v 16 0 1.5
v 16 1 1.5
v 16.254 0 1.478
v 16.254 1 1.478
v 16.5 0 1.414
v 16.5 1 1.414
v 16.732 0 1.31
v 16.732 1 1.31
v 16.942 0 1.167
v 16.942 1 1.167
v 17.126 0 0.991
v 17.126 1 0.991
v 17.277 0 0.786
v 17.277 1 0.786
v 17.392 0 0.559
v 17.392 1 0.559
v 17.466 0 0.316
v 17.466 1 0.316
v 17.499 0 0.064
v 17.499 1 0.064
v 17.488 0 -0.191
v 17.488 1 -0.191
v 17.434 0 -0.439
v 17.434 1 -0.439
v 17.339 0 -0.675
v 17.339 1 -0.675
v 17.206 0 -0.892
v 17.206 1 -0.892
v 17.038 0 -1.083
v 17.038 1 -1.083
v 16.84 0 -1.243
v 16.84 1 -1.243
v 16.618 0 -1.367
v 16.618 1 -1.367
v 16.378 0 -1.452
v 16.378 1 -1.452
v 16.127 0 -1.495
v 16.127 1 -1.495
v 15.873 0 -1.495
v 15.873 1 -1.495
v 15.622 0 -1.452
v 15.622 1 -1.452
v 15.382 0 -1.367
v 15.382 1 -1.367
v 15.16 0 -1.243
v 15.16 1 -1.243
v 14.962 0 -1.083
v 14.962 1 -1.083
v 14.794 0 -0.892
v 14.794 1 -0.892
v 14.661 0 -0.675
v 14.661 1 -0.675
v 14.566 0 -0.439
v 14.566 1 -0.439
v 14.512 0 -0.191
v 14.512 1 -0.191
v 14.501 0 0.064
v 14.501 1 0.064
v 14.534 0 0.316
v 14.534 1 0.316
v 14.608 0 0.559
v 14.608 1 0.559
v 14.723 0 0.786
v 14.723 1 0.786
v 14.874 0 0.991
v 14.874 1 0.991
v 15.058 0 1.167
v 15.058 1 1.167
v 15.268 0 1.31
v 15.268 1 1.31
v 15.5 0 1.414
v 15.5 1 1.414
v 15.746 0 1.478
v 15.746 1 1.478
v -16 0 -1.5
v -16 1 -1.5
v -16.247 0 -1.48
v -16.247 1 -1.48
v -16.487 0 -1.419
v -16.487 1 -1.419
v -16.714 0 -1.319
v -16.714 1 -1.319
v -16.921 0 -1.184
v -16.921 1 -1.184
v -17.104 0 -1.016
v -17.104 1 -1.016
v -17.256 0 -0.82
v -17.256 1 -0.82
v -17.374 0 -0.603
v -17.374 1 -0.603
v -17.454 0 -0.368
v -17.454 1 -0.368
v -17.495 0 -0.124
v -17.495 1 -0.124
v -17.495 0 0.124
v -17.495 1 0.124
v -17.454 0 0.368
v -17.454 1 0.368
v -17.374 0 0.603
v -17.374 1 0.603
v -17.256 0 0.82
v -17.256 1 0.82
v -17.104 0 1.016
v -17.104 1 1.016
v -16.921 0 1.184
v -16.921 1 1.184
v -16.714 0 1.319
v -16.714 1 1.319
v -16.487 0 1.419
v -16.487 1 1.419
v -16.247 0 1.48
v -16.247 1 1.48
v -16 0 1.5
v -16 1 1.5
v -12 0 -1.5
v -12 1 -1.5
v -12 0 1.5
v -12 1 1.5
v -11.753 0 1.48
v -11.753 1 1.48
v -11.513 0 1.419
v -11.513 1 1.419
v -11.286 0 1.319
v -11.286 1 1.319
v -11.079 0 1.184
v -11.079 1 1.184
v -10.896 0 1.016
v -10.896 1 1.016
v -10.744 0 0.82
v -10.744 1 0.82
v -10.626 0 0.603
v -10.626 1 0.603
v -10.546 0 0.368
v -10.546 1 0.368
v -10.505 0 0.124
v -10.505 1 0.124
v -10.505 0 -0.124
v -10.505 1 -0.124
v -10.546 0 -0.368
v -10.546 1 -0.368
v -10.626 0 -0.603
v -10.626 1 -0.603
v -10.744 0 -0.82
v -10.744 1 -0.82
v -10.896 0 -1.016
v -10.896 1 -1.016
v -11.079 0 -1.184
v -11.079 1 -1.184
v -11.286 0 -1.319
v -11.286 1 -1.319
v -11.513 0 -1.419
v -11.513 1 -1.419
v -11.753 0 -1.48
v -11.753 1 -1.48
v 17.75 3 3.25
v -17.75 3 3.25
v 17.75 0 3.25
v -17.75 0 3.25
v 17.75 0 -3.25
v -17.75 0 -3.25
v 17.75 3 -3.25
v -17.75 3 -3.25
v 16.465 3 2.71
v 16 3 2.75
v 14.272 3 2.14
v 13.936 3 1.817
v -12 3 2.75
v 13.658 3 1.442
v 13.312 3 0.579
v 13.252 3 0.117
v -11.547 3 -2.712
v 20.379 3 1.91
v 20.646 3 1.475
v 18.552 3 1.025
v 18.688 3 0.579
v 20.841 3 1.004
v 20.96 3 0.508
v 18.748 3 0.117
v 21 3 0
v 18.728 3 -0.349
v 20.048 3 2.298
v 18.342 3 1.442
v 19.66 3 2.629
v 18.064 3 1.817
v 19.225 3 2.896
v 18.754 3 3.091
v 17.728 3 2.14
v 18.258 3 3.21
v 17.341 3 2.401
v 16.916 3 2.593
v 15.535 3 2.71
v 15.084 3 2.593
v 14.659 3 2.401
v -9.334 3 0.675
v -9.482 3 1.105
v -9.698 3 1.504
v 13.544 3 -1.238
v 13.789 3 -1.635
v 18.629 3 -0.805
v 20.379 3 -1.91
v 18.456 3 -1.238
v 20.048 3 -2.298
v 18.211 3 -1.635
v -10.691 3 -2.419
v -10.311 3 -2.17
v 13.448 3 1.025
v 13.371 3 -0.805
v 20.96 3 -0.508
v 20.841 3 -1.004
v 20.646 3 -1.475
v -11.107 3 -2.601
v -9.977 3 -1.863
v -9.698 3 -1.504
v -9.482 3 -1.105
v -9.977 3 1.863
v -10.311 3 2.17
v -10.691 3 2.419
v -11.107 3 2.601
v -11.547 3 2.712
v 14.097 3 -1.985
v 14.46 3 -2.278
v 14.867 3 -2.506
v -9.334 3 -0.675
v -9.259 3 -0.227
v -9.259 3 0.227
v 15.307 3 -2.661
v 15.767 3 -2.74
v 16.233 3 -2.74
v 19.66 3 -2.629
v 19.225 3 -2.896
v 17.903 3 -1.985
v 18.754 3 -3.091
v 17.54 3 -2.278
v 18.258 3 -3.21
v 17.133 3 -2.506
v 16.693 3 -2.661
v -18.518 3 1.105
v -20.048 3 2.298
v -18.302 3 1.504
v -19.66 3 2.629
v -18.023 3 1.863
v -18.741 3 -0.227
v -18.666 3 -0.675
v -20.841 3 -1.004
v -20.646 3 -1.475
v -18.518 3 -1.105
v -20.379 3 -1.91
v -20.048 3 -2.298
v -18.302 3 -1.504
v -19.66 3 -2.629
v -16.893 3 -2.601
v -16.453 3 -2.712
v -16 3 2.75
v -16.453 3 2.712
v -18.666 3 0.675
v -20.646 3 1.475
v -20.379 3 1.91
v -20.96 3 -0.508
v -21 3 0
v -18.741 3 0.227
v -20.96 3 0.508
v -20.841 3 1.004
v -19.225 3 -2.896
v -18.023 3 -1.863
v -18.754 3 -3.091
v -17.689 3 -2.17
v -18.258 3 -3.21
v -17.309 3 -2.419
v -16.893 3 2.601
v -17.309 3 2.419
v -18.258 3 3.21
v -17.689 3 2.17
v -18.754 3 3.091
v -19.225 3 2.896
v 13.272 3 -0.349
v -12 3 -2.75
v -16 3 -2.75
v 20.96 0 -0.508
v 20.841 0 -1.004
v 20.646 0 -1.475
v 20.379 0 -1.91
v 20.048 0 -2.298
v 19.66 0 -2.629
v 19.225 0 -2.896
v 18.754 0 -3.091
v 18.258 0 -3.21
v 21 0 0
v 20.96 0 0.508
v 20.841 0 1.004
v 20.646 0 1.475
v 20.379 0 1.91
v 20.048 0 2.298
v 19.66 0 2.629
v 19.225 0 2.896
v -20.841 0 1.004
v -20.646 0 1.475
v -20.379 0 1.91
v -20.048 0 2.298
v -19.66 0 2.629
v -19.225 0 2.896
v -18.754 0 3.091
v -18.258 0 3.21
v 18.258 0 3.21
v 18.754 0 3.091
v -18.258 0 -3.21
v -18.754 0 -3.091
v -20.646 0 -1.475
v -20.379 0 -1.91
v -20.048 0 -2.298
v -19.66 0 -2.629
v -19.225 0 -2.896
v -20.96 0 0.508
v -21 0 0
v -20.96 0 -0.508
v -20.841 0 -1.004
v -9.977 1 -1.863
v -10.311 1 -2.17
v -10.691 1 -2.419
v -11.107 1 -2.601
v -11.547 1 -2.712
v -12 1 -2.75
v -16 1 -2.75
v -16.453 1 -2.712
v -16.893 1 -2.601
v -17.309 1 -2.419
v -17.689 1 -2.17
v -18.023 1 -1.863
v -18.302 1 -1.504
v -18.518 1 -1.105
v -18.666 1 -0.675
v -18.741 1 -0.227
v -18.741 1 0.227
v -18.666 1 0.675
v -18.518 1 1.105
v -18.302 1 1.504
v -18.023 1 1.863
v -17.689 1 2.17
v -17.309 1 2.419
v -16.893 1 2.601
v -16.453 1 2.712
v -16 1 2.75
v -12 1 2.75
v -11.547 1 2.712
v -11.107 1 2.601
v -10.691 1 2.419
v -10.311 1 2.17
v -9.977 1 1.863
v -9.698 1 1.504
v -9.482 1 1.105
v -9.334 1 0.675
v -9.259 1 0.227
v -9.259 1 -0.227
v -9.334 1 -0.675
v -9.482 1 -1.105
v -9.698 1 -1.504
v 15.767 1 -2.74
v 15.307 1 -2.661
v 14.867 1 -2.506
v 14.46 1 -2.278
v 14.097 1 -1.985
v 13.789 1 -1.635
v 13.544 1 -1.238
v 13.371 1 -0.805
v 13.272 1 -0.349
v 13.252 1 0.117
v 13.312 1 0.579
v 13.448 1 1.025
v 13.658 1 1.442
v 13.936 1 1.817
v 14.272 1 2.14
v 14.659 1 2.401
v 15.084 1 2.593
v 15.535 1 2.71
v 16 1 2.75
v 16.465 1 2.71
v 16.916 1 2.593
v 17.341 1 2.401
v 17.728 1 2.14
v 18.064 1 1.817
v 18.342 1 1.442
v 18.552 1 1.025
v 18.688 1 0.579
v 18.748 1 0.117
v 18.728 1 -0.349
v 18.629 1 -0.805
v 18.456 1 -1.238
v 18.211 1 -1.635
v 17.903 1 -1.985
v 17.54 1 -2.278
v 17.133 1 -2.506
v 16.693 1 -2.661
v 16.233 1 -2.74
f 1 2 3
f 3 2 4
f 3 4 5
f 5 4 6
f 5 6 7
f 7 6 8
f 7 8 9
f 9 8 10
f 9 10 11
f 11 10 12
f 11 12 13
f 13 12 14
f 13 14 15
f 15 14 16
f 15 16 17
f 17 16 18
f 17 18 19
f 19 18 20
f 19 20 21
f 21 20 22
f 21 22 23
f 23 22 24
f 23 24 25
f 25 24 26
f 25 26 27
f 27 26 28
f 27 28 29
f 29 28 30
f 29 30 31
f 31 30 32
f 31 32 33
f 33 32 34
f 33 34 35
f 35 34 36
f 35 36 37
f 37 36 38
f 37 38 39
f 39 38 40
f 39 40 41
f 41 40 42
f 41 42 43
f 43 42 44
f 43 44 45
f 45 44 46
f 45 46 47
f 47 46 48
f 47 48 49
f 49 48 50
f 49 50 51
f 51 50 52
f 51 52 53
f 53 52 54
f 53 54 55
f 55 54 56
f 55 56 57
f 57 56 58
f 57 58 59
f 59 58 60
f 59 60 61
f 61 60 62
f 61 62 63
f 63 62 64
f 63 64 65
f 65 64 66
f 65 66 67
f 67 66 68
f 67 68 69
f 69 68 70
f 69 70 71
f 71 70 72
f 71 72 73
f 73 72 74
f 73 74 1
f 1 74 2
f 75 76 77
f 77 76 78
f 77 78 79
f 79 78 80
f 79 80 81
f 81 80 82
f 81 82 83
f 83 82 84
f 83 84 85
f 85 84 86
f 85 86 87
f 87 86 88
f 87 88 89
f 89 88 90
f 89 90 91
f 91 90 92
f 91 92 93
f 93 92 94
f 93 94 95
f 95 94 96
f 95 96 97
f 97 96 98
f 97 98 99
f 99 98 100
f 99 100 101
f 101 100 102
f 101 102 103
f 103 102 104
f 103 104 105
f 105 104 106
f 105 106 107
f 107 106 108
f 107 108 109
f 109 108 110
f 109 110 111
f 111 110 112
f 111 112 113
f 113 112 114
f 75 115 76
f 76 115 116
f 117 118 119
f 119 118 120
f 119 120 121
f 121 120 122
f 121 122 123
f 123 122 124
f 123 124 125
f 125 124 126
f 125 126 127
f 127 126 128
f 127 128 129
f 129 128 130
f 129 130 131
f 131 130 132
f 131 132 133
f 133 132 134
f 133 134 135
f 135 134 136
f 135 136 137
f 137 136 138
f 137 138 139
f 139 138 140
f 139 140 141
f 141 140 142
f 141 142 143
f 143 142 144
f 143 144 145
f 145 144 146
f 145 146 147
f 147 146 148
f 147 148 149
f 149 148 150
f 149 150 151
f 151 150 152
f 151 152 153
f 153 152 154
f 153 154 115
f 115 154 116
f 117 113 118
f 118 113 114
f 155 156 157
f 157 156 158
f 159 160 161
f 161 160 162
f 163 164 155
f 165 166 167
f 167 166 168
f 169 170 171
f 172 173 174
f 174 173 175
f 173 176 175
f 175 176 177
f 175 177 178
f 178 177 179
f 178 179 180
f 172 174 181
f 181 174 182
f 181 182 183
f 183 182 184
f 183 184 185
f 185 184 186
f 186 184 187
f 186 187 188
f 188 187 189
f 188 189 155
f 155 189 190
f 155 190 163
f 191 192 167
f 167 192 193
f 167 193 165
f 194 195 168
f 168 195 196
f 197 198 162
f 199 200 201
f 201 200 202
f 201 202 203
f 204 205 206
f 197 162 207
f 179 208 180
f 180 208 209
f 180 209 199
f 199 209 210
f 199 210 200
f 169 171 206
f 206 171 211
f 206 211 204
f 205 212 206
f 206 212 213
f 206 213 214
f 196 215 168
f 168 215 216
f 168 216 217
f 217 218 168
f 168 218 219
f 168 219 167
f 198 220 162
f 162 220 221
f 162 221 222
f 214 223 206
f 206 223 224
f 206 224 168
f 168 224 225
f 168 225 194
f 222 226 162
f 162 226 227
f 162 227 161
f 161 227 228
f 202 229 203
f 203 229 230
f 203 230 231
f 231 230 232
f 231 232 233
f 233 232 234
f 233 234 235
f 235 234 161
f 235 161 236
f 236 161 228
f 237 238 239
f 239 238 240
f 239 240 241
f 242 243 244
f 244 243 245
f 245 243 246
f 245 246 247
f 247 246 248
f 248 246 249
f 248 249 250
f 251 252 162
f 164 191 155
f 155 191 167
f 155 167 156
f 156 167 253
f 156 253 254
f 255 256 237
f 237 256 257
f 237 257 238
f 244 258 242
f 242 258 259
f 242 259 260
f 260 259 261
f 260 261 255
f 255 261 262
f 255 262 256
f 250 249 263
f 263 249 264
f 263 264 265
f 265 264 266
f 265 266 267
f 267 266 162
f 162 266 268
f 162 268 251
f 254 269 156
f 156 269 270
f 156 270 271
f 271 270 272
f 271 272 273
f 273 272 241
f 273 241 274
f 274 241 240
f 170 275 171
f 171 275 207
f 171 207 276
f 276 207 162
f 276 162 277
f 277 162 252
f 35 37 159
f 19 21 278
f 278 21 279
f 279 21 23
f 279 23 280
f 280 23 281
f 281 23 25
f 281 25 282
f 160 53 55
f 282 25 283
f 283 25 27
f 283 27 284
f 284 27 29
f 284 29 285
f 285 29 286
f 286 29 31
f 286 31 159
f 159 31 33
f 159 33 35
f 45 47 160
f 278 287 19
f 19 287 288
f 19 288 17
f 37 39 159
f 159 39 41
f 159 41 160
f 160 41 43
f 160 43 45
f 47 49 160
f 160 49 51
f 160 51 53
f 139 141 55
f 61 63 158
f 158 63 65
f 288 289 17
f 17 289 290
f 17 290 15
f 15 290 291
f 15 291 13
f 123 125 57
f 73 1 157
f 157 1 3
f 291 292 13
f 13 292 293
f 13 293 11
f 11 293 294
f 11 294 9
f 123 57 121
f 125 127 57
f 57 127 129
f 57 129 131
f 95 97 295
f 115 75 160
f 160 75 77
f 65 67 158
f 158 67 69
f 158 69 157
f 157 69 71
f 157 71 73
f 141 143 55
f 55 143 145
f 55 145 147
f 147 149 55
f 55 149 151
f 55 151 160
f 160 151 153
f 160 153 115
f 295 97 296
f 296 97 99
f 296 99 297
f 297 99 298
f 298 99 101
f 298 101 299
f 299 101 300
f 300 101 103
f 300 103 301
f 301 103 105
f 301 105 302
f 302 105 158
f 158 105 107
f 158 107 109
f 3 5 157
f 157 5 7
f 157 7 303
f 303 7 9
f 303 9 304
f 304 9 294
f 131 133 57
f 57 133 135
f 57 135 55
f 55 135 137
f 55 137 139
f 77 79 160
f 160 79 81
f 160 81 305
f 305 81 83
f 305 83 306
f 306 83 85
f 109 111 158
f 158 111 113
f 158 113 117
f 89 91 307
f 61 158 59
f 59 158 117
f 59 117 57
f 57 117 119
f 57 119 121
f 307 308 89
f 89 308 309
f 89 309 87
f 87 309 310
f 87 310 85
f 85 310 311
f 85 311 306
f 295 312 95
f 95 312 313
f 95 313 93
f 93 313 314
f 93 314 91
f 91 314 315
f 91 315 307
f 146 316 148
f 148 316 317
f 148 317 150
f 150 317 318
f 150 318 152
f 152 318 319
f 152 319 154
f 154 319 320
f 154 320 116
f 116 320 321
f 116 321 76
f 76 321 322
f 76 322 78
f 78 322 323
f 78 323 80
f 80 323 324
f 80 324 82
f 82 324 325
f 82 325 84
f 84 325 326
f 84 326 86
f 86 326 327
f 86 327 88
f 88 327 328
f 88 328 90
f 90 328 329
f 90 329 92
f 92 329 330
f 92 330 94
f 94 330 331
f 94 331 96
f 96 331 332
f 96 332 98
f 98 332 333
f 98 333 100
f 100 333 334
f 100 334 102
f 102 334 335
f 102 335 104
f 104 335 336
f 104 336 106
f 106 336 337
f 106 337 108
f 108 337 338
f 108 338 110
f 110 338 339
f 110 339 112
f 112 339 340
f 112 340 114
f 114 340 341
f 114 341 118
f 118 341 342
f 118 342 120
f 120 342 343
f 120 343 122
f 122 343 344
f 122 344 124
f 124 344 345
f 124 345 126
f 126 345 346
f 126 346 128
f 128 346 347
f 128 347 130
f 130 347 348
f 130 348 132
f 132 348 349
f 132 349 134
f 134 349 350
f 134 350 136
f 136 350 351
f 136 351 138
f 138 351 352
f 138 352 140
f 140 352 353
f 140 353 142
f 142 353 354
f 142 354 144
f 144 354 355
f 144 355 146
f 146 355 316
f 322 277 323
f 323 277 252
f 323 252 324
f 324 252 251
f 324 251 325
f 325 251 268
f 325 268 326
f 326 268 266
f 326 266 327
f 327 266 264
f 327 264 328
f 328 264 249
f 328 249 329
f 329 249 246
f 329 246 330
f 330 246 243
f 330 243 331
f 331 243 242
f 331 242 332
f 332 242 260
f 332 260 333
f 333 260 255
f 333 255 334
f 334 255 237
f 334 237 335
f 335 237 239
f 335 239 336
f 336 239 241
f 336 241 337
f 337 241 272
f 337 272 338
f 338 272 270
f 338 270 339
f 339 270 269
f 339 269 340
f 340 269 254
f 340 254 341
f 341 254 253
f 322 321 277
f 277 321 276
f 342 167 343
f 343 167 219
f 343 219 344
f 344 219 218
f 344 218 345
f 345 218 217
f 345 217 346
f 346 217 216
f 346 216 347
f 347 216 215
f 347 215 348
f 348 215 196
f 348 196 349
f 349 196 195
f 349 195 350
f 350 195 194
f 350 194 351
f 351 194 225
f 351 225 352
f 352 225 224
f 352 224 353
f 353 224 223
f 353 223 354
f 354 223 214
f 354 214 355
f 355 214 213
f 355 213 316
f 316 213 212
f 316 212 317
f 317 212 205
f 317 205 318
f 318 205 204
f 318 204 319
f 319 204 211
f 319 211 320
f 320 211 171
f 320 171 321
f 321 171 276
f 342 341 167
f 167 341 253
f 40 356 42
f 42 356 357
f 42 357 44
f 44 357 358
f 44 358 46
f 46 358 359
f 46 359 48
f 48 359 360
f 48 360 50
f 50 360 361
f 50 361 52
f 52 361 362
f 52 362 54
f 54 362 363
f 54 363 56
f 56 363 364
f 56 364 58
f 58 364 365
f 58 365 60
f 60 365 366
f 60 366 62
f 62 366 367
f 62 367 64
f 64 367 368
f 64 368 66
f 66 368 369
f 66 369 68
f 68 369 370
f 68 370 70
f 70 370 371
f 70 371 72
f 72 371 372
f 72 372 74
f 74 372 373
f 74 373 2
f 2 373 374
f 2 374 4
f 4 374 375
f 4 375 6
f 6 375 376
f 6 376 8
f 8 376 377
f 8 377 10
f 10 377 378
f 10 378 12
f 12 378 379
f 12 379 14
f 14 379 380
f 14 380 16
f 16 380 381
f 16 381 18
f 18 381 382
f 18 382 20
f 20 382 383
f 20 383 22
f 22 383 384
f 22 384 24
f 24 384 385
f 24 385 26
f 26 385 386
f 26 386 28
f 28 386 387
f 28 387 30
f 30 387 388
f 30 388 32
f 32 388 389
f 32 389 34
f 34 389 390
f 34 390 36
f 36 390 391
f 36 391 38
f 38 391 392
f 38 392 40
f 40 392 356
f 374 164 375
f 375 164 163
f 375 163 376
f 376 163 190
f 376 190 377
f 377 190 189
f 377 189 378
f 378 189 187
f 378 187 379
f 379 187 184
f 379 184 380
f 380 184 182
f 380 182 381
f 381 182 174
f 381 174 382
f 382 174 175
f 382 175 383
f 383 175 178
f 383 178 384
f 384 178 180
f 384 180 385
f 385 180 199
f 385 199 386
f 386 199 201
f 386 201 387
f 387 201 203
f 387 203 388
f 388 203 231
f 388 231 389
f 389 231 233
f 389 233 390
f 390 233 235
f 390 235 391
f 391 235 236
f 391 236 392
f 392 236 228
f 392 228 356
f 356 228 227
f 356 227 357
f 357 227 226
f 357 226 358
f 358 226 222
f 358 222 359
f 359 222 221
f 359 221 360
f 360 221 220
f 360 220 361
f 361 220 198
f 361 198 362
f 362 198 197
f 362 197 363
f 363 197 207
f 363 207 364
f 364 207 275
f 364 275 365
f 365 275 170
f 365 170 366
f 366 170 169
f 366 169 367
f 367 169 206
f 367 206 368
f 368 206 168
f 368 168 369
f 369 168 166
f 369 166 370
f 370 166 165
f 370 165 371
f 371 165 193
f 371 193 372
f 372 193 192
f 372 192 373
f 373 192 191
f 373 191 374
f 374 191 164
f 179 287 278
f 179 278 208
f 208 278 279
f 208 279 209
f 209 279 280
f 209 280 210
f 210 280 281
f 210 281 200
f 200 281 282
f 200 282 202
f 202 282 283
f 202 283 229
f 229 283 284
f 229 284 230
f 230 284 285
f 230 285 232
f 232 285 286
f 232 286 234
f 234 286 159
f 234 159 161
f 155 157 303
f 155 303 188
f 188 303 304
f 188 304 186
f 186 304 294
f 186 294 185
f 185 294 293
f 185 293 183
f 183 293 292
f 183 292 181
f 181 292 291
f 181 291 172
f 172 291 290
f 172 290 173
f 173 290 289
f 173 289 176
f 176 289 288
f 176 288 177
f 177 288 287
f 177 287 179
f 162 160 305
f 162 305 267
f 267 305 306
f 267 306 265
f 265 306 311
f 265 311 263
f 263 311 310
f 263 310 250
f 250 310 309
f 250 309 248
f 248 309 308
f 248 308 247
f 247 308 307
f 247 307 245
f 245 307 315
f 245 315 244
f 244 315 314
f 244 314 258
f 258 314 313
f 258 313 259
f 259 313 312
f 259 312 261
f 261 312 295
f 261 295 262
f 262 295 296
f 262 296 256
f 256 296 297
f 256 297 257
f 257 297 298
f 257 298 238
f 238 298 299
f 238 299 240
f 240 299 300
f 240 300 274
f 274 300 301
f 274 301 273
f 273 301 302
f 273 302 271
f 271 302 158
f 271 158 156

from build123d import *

# Parameters (mm, degrees)
ESBO_O1_W                = 42
ESBO_O1_H                = 6.5
RESSALTO_EXTRUS_O1_DEPTH = 3
ESBO_O2_R                = 1.5
CORTE_EXTRUS_O1_DEPTH    = 22.460719932
ESBO_O3_R                = 2.75
CORTE_EXTRUS_O2_DEPTH    = 2
FILETE1_R                = 3.25


with BuildPart() as part:
    # Esboço1 → Ressalto-extrusão1 (new body)
    with BuildSketch(Plane(origin=(0, 0, 0), x_dir=(1, 0, 0), z_dir=(0, 1, 0))):
        Rectangle(ESBO_O1_W, ESBO_O1_H)
    extrude(amount=RESSALTO_EXTRUS_O1_DEPTH)

    # Esboço2 → Corte-extrusão1 (cut, through all)
    with BuildSketch(Plane(origin=(0, 3, 0), x_dir=(1, 0, 0), z_dir=(0, 1, 0))):
        with Locations(Location((16, 0, 0), (0, 0, 270))):
            Circle(ESBO_O2_R)
        with BuildLine():
            Line((-16, 1.5), (-12, 1.5))
            ThreePointArc((-12, 1.5), (-10.5, 0), (-12, -1.5))
            Line((-12, -1.5), (-16, -1.5))
            ThreePointArc((-16, -1.5), (-17.5, 0), (-16, 1.5))
        make_face()
    extrude(amount=-CORTE_EXTRUS_O1_DEPTH, mode=Mode.SUBTRACT)

    # Esboço3 → Corte-extrusão2 (cut)
    with BuildSketch(Plane(origin=(0, 3, 0), x_dir=(1, 0, 0), z_dir=(0, 1, 0))):
        with Locations(Location((16, 0, 0), (0, 0, 270))):
            Circle(ESBO_O3_R)
        with BuildLine():
            Line((-16, 2.75), (-12, 2.75))
            ThreePointArc((-12, 2.75), (-9.25, 0), (-12, -2.75))
            Line((-12, -2.75), (-16, -2.75))
            ThreePointArc((-16, -2.75), (-18.75, 0), (-16, 2.75))
        make_face()
    extrude(amount=-CORTE_EXTRUS_O2_DEPTH, mode=Mode.SUBTRACT)

    # Filete1
    filete1_edges = [part.edges().sort_by_distance(p)[0] for p in [
        (21, 1.5, 3.25),
        (21, 1.5, -3.25),
        (-21, 1.5, 3.25),
        (-21, 1.5, -3.25),
    ]]
    fillet(filete1_edges, radius=FILETE1_R - 0.0001)  # a hair under: the kernel refuses the full size


solid = part.part
